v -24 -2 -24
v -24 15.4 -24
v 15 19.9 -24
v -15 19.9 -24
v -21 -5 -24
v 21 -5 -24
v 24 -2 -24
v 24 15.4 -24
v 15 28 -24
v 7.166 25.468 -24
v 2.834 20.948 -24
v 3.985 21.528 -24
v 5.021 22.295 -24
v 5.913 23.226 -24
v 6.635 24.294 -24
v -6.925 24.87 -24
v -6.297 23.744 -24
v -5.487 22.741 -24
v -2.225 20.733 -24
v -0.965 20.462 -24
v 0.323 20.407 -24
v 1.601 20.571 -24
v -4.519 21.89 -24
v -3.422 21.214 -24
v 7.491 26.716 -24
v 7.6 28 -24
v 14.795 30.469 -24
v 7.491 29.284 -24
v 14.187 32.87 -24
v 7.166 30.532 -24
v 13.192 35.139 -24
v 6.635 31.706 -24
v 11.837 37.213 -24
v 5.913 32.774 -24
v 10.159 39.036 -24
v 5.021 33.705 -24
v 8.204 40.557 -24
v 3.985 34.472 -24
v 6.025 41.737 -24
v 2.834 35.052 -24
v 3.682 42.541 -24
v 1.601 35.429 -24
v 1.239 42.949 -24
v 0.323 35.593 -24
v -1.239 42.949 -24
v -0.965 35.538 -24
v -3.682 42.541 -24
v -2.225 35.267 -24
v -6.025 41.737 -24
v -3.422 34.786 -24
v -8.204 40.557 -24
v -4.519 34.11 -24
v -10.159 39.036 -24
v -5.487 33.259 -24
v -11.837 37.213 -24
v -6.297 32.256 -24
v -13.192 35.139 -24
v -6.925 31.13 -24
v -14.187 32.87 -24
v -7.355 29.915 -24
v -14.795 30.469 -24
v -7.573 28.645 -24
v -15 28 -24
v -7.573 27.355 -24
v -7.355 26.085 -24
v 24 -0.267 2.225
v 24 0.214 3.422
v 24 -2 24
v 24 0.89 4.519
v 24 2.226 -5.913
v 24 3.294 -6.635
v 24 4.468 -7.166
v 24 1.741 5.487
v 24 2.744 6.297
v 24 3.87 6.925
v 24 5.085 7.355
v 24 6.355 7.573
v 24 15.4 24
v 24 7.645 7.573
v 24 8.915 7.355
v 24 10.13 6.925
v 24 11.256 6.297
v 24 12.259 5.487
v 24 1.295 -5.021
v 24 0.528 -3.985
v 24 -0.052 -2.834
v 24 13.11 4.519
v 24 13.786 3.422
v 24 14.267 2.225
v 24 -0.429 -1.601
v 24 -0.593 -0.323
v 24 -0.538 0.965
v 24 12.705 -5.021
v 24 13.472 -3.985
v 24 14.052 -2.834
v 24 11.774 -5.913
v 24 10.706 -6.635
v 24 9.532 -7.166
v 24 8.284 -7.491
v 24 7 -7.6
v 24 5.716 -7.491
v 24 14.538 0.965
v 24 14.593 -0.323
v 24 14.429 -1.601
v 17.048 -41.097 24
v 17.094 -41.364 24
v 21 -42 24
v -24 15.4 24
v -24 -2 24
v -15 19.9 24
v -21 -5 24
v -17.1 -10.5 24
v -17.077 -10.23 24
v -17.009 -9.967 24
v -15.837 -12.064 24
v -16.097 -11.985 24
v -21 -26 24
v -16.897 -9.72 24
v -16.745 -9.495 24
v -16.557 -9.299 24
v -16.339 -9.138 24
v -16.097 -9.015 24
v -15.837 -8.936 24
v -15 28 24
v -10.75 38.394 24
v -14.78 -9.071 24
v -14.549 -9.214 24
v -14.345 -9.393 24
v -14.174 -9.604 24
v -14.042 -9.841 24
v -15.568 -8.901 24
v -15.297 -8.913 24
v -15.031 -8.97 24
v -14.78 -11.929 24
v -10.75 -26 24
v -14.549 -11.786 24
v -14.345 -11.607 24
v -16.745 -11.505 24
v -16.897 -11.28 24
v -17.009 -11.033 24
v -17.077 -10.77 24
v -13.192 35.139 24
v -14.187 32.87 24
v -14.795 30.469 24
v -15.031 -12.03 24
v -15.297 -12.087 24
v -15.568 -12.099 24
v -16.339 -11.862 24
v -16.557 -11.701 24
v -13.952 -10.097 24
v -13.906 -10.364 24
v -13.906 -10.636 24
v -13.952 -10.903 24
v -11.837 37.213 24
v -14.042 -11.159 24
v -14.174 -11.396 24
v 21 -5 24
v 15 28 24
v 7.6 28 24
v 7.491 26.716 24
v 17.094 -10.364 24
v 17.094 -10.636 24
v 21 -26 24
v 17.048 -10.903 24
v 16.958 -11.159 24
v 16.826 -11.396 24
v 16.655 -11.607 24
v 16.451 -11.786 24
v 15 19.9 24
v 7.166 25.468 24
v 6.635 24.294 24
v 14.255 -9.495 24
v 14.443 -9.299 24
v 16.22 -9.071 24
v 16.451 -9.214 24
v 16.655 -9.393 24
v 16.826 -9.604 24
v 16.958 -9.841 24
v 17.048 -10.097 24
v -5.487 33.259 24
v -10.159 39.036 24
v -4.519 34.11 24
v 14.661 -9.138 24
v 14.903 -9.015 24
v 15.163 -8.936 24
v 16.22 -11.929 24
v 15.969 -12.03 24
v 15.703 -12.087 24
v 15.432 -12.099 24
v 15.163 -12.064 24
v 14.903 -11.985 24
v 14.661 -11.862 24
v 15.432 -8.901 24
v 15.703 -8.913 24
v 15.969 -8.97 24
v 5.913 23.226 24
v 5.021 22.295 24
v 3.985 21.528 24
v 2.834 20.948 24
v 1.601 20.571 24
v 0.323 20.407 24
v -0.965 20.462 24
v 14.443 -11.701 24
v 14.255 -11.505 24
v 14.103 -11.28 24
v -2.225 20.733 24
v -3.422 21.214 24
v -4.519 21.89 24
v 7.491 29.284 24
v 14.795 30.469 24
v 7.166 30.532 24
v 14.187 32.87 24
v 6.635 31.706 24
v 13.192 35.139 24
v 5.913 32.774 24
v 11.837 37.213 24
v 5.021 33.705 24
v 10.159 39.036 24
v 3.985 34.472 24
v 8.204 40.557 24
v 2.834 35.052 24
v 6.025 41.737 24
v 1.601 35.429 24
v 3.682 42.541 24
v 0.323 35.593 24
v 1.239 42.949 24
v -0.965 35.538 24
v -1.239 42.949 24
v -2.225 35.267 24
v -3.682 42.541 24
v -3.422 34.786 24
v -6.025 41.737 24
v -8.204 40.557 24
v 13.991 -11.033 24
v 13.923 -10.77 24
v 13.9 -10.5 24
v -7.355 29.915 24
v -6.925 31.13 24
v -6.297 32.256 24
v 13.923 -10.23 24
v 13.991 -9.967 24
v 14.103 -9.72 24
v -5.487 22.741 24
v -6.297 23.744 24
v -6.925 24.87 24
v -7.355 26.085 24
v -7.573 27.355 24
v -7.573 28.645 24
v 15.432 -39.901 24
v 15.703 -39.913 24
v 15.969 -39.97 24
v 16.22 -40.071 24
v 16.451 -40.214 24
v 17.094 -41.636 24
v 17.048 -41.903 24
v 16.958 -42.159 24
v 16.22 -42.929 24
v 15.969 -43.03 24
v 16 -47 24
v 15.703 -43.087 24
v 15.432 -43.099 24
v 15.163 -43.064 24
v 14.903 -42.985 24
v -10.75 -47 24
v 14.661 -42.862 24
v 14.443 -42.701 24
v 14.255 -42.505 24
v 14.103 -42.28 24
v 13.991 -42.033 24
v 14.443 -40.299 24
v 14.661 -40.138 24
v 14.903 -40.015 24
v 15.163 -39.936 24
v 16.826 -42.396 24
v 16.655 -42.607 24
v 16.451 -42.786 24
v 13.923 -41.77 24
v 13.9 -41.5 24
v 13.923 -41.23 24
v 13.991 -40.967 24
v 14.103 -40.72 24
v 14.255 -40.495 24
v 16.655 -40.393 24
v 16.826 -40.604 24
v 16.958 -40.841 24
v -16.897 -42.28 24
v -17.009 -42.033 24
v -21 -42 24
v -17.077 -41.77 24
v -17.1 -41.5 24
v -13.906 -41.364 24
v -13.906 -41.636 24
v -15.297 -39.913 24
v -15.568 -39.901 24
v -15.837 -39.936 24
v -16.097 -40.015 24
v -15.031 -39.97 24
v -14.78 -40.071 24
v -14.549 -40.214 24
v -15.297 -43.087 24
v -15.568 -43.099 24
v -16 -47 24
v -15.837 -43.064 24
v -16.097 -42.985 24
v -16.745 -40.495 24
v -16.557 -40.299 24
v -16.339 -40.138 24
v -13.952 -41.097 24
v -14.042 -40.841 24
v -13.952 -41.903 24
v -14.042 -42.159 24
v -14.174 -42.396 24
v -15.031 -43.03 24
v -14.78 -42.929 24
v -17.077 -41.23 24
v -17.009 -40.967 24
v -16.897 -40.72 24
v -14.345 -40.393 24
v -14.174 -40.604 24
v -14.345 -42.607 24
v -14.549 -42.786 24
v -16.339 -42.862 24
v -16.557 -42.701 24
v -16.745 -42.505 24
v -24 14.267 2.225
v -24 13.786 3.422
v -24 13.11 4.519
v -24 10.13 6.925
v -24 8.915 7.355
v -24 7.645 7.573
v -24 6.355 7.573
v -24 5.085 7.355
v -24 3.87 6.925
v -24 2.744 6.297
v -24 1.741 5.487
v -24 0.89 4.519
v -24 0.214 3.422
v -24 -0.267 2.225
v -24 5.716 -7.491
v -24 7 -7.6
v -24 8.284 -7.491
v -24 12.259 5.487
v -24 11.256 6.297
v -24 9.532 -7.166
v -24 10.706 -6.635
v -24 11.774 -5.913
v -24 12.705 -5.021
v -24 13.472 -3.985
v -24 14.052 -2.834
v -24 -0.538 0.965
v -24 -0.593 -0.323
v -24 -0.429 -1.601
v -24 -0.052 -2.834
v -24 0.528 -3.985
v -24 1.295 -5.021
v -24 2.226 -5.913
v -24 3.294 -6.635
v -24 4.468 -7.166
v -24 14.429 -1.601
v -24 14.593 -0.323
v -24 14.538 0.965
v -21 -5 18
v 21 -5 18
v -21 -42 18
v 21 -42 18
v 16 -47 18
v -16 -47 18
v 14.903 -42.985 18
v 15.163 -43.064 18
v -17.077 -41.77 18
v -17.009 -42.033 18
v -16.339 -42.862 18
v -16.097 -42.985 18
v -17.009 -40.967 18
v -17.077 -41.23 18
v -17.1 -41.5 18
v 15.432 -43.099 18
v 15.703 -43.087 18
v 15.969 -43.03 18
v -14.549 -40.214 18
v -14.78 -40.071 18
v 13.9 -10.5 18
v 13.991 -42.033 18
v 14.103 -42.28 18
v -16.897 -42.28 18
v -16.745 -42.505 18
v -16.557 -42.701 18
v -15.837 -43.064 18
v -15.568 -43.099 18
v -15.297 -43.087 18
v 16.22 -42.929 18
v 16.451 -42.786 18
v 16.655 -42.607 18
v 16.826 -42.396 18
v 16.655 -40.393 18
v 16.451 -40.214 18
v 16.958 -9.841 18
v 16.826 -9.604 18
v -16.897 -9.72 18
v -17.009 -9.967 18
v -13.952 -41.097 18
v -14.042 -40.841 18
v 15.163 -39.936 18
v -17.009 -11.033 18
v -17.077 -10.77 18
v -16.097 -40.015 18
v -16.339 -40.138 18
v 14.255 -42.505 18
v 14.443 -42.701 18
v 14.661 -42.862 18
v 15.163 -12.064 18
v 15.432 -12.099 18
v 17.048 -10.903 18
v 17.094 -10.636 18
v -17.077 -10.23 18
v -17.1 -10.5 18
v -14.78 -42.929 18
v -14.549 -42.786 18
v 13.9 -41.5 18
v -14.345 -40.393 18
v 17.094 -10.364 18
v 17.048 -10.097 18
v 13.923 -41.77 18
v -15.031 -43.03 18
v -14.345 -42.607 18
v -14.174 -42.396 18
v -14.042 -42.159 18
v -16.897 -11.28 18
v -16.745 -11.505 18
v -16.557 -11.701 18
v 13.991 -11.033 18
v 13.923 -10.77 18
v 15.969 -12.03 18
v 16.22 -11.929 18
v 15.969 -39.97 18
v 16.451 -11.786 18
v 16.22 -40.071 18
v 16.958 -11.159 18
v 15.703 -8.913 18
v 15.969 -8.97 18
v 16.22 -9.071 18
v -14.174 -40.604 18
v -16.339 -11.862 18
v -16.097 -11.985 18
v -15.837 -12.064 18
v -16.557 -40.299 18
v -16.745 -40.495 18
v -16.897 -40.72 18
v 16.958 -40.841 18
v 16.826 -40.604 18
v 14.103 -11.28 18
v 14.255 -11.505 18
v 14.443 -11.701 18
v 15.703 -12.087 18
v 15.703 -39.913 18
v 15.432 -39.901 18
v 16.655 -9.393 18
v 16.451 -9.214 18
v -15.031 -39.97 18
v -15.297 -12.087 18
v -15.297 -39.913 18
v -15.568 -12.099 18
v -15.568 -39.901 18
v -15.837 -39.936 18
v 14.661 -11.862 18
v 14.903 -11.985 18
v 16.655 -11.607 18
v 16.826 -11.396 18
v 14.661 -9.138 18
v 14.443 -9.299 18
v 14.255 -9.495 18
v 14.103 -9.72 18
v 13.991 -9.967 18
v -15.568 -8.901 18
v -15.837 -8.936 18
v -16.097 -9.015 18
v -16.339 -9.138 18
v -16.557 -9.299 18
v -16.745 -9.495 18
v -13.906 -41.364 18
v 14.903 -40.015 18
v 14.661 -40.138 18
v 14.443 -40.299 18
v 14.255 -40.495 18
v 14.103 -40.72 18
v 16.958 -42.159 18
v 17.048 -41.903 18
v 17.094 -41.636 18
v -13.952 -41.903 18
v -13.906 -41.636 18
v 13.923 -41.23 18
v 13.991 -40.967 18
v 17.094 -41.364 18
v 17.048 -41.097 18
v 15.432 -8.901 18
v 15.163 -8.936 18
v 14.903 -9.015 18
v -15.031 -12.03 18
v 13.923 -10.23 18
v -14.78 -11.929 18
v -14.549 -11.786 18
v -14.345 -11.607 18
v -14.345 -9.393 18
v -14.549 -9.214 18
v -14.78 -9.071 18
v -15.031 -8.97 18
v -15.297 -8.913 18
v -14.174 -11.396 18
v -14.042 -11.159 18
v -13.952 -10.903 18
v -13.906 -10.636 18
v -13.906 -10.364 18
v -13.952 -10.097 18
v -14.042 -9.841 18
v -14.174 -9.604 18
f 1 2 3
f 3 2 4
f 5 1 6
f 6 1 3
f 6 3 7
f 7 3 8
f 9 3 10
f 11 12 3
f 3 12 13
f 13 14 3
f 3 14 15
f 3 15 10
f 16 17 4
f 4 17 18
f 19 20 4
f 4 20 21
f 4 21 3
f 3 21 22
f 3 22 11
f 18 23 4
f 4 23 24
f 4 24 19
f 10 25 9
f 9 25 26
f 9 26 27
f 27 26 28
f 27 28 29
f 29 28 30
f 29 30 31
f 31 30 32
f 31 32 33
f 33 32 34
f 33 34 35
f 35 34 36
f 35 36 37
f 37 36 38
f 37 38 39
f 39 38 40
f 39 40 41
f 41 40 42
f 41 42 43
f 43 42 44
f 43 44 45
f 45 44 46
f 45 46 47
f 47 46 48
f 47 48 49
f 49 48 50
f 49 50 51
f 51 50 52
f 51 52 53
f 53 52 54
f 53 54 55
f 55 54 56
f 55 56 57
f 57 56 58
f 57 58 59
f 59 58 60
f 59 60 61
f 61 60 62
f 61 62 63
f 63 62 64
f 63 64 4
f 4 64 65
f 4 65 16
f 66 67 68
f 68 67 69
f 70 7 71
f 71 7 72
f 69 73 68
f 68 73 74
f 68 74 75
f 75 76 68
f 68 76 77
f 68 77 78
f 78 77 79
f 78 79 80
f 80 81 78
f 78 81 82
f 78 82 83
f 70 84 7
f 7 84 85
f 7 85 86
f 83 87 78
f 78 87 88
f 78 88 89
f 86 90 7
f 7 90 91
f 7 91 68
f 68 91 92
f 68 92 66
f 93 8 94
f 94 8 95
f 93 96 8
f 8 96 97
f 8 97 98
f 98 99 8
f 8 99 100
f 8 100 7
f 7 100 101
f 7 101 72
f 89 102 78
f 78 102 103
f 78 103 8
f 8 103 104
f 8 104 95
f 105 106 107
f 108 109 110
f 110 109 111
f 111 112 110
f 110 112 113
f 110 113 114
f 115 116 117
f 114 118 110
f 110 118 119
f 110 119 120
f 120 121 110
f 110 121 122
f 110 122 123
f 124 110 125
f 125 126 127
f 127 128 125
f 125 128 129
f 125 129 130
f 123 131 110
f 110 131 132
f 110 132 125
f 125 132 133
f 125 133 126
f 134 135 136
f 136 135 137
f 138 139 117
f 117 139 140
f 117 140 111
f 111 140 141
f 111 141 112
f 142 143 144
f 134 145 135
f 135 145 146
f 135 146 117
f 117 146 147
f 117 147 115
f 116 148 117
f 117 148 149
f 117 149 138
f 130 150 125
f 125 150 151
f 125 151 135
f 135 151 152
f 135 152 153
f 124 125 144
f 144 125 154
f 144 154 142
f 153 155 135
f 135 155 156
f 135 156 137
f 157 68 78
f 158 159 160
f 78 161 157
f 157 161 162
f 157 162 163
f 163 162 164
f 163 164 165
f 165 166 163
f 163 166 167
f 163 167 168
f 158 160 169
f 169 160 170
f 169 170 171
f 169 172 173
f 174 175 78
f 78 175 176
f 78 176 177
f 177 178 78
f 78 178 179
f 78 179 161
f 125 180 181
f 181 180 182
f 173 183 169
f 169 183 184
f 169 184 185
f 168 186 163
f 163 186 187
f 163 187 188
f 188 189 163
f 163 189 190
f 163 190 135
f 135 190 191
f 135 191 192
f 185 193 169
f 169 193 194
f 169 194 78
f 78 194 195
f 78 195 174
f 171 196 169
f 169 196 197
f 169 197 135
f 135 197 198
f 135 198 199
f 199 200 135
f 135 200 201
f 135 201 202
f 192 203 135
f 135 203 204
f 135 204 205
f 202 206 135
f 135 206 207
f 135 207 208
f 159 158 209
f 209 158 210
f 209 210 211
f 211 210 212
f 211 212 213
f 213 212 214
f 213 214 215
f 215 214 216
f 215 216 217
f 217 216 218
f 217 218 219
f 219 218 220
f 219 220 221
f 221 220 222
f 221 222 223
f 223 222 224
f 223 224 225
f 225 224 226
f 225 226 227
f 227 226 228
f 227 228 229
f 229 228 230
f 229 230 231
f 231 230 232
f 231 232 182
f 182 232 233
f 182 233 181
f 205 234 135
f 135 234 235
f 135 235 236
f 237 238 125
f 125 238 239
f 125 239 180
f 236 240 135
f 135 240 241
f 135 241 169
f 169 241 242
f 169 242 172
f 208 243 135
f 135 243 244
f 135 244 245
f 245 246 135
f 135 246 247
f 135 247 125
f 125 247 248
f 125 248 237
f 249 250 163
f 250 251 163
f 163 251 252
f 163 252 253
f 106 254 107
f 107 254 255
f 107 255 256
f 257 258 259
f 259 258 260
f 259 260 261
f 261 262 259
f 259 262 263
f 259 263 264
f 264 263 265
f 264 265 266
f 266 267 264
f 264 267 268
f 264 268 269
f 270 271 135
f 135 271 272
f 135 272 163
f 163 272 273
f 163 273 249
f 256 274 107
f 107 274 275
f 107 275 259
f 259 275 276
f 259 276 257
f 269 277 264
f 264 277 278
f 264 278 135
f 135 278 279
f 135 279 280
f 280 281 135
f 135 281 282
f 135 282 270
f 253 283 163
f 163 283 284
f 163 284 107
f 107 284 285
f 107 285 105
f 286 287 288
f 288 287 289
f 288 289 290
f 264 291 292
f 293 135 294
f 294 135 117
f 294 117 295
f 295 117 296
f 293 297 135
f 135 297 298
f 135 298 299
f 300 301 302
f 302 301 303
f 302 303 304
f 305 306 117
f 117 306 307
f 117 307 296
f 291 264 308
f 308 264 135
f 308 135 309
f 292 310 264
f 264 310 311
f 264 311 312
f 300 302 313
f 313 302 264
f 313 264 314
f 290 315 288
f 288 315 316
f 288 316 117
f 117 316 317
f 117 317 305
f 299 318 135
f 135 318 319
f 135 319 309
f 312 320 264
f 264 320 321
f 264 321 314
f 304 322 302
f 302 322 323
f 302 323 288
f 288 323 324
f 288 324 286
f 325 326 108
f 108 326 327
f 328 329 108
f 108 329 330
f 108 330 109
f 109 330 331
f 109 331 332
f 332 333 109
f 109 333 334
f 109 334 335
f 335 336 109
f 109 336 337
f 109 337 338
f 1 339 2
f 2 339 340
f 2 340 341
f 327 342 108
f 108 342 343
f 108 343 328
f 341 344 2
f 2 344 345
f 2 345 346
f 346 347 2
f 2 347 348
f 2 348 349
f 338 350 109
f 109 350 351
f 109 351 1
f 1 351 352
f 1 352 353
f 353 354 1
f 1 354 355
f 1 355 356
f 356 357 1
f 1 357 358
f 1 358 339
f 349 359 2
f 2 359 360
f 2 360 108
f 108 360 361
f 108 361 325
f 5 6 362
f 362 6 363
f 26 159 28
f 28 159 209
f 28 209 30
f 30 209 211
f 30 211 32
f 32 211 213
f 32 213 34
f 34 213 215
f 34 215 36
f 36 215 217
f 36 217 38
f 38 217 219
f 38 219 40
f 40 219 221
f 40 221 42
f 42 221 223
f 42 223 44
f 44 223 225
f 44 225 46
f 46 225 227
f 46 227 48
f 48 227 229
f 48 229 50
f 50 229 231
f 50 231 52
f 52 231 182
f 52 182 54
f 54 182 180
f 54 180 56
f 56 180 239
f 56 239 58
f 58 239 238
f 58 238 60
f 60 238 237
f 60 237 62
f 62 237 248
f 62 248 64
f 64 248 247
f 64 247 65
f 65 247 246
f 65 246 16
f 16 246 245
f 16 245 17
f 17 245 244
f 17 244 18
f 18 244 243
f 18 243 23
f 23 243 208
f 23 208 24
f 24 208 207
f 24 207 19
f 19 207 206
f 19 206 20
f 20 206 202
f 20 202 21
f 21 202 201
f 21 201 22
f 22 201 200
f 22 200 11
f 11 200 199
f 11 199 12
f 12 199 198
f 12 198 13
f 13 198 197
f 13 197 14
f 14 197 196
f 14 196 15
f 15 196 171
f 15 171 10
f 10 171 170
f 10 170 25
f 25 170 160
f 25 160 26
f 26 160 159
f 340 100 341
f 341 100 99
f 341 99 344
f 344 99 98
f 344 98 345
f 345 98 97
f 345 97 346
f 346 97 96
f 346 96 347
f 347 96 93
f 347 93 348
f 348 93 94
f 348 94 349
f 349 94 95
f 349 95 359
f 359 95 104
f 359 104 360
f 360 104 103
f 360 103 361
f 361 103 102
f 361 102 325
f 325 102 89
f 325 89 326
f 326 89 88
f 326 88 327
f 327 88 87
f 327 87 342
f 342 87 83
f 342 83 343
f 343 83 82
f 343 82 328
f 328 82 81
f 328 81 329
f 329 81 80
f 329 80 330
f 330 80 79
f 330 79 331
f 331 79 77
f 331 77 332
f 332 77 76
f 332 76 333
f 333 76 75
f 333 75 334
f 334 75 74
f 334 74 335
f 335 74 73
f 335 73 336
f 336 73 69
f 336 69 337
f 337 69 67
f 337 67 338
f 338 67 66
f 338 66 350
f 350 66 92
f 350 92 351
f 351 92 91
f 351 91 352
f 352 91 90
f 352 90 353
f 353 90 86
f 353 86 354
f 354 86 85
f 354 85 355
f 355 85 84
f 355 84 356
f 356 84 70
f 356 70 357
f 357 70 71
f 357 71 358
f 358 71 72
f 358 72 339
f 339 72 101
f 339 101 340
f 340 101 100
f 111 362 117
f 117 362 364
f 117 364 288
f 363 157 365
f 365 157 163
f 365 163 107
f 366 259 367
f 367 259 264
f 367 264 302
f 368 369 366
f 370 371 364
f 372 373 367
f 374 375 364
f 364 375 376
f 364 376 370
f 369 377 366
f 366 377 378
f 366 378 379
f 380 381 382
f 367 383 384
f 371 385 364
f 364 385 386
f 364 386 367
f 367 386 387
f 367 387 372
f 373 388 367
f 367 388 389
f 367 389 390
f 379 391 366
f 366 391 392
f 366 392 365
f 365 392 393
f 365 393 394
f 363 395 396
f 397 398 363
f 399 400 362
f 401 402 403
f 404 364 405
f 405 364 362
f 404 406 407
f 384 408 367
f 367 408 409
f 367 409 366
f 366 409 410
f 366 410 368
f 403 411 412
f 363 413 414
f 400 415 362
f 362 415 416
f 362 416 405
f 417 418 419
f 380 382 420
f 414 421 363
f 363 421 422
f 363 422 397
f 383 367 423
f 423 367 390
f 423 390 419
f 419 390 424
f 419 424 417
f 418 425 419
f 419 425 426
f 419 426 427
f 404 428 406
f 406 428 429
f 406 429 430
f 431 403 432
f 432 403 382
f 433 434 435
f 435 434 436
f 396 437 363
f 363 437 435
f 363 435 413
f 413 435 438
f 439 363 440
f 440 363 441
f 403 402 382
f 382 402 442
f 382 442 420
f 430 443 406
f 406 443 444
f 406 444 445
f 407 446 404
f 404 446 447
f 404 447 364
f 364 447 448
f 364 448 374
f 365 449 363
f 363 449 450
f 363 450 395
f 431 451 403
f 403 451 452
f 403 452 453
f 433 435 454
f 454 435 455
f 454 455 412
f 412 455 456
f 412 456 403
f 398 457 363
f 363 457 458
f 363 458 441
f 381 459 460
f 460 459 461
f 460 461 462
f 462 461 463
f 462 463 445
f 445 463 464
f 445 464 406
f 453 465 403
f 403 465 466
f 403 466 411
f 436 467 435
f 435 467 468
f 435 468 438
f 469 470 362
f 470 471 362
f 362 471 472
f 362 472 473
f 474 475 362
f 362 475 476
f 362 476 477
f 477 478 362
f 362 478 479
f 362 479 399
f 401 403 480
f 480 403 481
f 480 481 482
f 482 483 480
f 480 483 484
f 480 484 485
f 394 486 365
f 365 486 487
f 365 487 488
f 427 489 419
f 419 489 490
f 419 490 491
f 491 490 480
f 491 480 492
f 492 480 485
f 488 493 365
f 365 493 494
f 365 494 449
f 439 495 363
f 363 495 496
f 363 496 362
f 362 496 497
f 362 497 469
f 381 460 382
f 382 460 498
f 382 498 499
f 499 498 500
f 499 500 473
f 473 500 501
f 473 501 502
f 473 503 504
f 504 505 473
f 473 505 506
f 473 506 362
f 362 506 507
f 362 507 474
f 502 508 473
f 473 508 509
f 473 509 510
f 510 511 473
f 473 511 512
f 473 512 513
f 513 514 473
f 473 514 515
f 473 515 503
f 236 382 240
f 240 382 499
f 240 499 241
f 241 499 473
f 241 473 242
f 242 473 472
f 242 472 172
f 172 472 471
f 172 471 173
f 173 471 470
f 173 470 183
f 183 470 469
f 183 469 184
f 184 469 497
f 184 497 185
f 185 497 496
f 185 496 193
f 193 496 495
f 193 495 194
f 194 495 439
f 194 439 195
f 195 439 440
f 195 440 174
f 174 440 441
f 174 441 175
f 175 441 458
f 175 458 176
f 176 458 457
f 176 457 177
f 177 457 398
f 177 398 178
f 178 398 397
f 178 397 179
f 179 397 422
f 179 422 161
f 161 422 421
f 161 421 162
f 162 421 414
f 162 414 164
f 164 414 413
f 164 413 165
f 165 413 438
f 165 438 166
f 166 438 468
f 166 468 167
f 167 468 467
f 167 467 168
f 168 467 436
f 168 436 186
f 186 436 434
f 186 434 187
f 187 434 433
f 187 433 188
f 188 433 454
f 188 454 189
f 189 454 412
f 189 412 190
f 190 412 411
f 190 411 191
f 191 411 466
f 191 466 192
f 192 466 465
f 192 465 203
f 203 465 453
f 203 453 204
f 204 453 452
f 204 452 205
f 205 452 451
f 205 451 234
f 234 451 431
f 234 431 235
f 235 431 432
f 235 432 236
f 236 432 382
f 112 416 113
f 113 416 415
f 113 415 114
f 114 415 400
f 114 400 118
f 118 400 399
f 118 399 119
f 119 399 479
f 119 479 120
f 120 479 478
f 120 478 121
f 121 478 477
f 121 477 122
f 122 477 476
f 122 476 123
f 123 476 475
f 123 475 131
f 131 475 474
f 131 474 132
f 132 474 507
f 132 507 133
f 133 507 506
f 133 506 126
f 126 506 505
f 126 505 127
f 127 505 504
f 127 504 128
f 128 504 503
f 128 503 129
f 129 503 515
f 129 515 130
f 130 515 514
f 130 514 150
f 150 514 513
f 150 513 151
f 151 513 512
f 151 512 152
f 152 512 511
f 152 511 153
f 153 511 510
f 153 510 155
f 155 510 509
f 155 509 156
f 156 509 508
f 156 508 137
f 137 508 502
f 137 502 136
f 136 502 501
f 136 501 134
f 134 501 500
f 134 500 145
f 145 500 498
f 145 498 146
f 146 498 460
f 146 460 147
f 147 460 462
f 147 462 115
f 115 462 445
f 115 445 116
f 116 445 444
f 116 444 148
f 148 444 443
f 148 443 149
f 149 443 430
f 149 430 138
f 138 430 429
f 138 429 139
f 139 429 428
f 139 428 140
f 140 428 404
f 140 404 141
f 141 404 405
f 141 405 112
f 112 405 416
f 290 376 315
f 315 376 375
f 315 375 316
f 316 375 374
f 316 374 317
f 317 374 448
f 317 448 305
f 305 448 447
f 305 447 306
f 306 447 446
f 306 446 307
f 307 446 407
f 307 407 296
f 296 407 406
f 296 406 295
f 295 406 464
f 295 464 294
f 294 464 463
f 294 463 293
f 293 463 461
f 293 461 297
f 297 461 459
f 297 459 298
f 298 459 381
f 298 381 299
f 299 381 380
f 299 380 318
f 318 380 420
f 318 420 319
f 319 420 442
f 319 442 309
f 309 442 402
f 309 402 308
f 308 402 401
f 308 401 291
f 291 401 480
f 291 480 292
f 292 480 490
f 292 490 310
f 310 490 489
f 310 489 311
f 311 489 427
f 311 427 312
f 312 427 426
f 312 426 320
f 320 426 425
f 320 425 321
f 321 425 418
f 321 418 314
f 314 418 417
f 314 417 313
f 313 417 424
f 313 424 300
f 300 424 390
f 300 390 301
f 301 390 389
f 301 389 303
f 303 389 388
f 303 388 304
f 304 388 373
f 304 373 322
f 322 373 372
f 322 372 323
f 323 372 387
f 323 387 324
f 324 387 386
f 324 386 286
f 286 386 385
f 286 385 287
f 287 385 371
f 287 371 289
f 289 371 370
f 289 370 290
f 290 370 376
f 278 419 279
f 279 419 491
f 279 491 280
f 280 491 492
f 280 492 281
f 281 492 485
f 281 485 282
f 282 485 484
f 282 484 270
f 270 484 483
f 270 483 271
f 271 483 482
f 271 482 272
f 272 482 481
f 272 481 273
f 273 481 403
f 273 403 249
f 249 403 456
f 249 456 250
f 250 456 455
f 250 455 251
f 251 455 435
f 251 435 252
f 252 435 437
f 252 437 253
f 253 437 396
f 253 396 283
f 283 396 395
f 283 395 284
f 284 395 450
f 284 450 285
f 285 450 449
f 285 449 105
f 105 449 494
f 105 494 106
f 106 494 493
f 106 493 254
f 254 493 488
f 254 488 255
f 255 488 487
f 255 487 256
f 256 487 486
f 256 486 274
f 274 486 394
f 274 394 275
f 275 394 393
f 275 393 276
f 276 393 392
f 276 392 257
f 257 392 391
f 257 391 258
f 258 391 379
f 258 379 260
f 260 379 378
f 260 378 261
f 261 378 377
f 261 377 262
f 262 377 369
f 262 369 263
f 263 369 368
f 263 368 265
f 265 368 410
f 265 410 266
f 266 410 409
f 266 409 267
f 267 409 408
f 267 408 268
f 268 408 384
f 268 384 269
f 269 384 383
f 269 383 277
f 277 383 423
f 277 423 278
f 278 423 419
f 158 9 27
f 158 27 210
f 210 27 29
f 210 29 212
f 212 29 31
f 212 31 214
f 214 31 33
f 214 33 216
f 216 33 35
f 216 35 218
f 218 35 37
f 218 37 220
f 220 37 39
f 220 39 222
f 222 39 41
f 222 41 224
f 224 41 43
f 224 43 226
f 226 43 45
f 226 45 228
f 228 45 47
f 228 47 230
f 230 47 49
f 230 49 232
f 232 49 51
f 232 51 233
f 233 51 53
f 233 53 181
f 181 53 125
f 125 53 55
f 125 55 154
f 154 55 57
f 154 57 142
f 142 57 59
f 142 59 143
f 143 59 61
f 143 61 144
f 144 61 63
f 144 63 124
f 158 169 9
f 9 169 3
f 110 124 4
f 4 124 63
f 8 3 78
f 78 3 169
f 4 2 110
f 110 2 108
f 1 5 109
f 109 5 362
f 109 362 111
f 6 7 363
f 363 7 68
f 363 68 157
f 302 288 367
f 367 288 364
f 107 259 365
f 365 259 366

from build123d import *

# Parameters (mm, degrees)
BOSS_EXTRUDE1_DEPTH      = 55
BOSS_EXTRUDE1_DEPTH_BACK = 5
SKETCH1_W                = 48
SKETCH1_H                = 48
SKETCH2_R                = 7.6
CUT_EXTRUDE1_DEPTH       = 77.843997814
SKETCH3_R                = 7.6
CUT_EXTRUDE2_DEPTH       = 77.843997814
SKETCH6_W                = 42
SKETCH6_H                = 42
BOSS_EXTRUDE2_DEPTH      = 6
SKETCH7_R                = 1.6
CUT_EXTRUDE4_DEPTH       = 74.246160309
CUT_EXTRUDE5_DEPTH       = 77.843997814
CHAMFER12_SIZE           = 5
CHAMFER12_SIZE_2         = 10
CHAMFER13_SIZE           = 10
CHAMFER13_SIZE_2         = 5
CHAMFER14_SIZE           = 3
CHAMFER15_SIZE           = 5


with BuildPart() as part:
    # Sketch1 → Boss-Extrude1 (new, two sides: drawn at the far end of the back side and taken through both)
    with BuildSketch(Plane(origin=(0, 0, 0), x_dir=(1, 0, 0), z_dir=(0, 1, 0)).offset(-BOSS_EXTRUDE1_DEPTH_BACK)):
        Rectangle(SKETCH1_W, SKETCH1_H)
    extrude(amount=BOSS_EXTRUDE1_DEPTH + BOSS_EXTRUDE1_DEPTH_BACK)

    # Sketch2 → Cut-Extrude1 (cut, through all)
    with BuildSketch(Plane.XY.offset(24)):
        with Locations((0, 28)):
            Circle(SKETCH2_R)
    extrude(amount=-CUT_EXTRUDE1_DEPTH, mode=Mode.SUBTRACT)

    # Sketch3 → Cut-Extrude2 (cut, through all)
    with BuildSketch(Plane(origin=(24, 0, 0), x_dir=(0, 0, -1), z_dir=(1, 0, 0))):
        with Locations((0, 7)):
            Circle(SKETCH3_R)
    extrude(amount=-CUT_EXTRUDE2_DEPTH, mode=Mode.SUBTRACT)

    # Sketch6 → Boss-Extrude2 (add)
    with BuildSketch(Plane.XY.offset(24)):
        with Locations((0, -26)):
            Rectangle(SKETCH6_W, SKETCH6_H)
    extrude(amount=-BOSS_EXTRUDE2_DEPTH)

    # Sketch7 → Cut-Extrude4 (cut, through all)
    with BuildSketch(Plane(origin=(0, 0, 18), x_dir=(-1, 0, 0), z_dir=(0, 0, -1))):
        with Locations((-15.5, -10.5)):
            Circle(SKETCH7_R)
        with Locations((-15.5, -41.5)):
            Circle(SKETCH7_R)
        with Locations((15.5, -41.5)):
            Circle(SKETCH7_R)
        with Locations((15.5, -10.5)):
            Circle(SKETCH7_R)
    extrude(amount=-CUT_EXTRUDE4_DEPTH, mode=Mode.SUBTRACT)

    # Sketch9 → Cut-Extrude5 (cut, through all)
    with BuildSketch(Plane(origin=(0, 0, -24), x_dir=(-1, 0, 0), z_dir=(0, 0, -1))):
        with BuildLine():
            Line((-15, 28), (-15, 20.4))
            Line((-15, 20.4), (-24, 20.4))
            Line((-24, 20.4), (-24, 55))
            Line((-24, 55), (24, 55))
            Line((24, 55), (24, 20.4))
            Line((24, 20.4), (15, 20.4))
            Line((15, 20.4), (15, 28))
            ThreePointArc((15, 28), (0, 43), (-15, 28))
        make_face()
    extrude(amount=-CUT_EXTRUDE5_DEPTH, mode=Mode.SUBTRACT)

    # Chamfer12
    # the kernel refuses this chamfer: 10, 5 mm, written as the material it takes off along each edge
    with BuildSketch(Plane(origin=(24, 20.4, -49.898288738), x_dir=(0.06891834360170909, -0.9976223042390326, 0), z_dir=(0, 0, 1))) as chamfer12_piece_1_section:
        Polygon((CHAMFER12_SIZE * 0.997622304239, -CHAMFER12_SIZE * 0.0689183436017), (-CHAMFER12_SIZE_2 * 0.0689183436017, -CHAMFER12_SIZE_2 * 0.997622304239), (0, 0), align=None)
    chamfer12_piece_1 = extrude(amount=99.796577476, mode=Mode.PRIVATE)
    chamfer12_piece_1 = split(chamfer12_piece_1, bisect_by=Plane(origin=(15, 18.773620907, 0), z_dir=(1, 0, 0)), keep=Keep.TOP, mode=Mode.PRIVATE)
    add(chamfer12_piece_1, mode=Mode.SUBTRACT)

    # Chamfer13
    # the kernel refuses this chamfer: 10, 5 mm, written as the material it takes off along each edge
    with BuildSketch(Plane(origin=(-24, 20.4, -49.898288738), x_dir=(0.9998508956747119, 0.017268075123668212, 0), z_dir=(0, 0, 1))) as chamfer13_piece_1_section:
        Polygon((CHAMFER13_SIZE * 0.999850895675, -CHAMFER13_SIZE * 0.0172680751237), (-CHAMFER13_SIZE_2 * 0.0172680751237, -CHAMFER13_SIZE_2 * 0.999850895675), (0, 0), align=None)
    chamfer13_piece_1 = extrude(amount=99.796577476, mode=Mode.PRIVATE)
    chamfer13_piece_1 = split(chamfer13_piece_1, bisect_by=Plane(origin=(-15, 18.773620907, 0), z_dir=(-1, 0, 0)), keep=Keep.TOP, mode=Mode.PRIVATE)
    add(chamfer13_piece_1, mode=Mode.SUBTRACT)

    # Chamfer14
    chamfer14_edges = [part.edges().sort_by_distance(p)[0] for p in [
        (-24, -5, 0),
        (24, -5, 0),
    ]]
    chamfer(chamfer14_edges, length=CHAMFER14_SIZE)

    # Chamfer15
    chamfer15_edges = [part.edges().sort_by_distance(p)[0] for p in [
        (-21, -47, 21),
        (21, -47, 21),
    ]]
    chamfer(chamfer15_edges, length=CHAMFER15_SIZE)


solid = part.part
